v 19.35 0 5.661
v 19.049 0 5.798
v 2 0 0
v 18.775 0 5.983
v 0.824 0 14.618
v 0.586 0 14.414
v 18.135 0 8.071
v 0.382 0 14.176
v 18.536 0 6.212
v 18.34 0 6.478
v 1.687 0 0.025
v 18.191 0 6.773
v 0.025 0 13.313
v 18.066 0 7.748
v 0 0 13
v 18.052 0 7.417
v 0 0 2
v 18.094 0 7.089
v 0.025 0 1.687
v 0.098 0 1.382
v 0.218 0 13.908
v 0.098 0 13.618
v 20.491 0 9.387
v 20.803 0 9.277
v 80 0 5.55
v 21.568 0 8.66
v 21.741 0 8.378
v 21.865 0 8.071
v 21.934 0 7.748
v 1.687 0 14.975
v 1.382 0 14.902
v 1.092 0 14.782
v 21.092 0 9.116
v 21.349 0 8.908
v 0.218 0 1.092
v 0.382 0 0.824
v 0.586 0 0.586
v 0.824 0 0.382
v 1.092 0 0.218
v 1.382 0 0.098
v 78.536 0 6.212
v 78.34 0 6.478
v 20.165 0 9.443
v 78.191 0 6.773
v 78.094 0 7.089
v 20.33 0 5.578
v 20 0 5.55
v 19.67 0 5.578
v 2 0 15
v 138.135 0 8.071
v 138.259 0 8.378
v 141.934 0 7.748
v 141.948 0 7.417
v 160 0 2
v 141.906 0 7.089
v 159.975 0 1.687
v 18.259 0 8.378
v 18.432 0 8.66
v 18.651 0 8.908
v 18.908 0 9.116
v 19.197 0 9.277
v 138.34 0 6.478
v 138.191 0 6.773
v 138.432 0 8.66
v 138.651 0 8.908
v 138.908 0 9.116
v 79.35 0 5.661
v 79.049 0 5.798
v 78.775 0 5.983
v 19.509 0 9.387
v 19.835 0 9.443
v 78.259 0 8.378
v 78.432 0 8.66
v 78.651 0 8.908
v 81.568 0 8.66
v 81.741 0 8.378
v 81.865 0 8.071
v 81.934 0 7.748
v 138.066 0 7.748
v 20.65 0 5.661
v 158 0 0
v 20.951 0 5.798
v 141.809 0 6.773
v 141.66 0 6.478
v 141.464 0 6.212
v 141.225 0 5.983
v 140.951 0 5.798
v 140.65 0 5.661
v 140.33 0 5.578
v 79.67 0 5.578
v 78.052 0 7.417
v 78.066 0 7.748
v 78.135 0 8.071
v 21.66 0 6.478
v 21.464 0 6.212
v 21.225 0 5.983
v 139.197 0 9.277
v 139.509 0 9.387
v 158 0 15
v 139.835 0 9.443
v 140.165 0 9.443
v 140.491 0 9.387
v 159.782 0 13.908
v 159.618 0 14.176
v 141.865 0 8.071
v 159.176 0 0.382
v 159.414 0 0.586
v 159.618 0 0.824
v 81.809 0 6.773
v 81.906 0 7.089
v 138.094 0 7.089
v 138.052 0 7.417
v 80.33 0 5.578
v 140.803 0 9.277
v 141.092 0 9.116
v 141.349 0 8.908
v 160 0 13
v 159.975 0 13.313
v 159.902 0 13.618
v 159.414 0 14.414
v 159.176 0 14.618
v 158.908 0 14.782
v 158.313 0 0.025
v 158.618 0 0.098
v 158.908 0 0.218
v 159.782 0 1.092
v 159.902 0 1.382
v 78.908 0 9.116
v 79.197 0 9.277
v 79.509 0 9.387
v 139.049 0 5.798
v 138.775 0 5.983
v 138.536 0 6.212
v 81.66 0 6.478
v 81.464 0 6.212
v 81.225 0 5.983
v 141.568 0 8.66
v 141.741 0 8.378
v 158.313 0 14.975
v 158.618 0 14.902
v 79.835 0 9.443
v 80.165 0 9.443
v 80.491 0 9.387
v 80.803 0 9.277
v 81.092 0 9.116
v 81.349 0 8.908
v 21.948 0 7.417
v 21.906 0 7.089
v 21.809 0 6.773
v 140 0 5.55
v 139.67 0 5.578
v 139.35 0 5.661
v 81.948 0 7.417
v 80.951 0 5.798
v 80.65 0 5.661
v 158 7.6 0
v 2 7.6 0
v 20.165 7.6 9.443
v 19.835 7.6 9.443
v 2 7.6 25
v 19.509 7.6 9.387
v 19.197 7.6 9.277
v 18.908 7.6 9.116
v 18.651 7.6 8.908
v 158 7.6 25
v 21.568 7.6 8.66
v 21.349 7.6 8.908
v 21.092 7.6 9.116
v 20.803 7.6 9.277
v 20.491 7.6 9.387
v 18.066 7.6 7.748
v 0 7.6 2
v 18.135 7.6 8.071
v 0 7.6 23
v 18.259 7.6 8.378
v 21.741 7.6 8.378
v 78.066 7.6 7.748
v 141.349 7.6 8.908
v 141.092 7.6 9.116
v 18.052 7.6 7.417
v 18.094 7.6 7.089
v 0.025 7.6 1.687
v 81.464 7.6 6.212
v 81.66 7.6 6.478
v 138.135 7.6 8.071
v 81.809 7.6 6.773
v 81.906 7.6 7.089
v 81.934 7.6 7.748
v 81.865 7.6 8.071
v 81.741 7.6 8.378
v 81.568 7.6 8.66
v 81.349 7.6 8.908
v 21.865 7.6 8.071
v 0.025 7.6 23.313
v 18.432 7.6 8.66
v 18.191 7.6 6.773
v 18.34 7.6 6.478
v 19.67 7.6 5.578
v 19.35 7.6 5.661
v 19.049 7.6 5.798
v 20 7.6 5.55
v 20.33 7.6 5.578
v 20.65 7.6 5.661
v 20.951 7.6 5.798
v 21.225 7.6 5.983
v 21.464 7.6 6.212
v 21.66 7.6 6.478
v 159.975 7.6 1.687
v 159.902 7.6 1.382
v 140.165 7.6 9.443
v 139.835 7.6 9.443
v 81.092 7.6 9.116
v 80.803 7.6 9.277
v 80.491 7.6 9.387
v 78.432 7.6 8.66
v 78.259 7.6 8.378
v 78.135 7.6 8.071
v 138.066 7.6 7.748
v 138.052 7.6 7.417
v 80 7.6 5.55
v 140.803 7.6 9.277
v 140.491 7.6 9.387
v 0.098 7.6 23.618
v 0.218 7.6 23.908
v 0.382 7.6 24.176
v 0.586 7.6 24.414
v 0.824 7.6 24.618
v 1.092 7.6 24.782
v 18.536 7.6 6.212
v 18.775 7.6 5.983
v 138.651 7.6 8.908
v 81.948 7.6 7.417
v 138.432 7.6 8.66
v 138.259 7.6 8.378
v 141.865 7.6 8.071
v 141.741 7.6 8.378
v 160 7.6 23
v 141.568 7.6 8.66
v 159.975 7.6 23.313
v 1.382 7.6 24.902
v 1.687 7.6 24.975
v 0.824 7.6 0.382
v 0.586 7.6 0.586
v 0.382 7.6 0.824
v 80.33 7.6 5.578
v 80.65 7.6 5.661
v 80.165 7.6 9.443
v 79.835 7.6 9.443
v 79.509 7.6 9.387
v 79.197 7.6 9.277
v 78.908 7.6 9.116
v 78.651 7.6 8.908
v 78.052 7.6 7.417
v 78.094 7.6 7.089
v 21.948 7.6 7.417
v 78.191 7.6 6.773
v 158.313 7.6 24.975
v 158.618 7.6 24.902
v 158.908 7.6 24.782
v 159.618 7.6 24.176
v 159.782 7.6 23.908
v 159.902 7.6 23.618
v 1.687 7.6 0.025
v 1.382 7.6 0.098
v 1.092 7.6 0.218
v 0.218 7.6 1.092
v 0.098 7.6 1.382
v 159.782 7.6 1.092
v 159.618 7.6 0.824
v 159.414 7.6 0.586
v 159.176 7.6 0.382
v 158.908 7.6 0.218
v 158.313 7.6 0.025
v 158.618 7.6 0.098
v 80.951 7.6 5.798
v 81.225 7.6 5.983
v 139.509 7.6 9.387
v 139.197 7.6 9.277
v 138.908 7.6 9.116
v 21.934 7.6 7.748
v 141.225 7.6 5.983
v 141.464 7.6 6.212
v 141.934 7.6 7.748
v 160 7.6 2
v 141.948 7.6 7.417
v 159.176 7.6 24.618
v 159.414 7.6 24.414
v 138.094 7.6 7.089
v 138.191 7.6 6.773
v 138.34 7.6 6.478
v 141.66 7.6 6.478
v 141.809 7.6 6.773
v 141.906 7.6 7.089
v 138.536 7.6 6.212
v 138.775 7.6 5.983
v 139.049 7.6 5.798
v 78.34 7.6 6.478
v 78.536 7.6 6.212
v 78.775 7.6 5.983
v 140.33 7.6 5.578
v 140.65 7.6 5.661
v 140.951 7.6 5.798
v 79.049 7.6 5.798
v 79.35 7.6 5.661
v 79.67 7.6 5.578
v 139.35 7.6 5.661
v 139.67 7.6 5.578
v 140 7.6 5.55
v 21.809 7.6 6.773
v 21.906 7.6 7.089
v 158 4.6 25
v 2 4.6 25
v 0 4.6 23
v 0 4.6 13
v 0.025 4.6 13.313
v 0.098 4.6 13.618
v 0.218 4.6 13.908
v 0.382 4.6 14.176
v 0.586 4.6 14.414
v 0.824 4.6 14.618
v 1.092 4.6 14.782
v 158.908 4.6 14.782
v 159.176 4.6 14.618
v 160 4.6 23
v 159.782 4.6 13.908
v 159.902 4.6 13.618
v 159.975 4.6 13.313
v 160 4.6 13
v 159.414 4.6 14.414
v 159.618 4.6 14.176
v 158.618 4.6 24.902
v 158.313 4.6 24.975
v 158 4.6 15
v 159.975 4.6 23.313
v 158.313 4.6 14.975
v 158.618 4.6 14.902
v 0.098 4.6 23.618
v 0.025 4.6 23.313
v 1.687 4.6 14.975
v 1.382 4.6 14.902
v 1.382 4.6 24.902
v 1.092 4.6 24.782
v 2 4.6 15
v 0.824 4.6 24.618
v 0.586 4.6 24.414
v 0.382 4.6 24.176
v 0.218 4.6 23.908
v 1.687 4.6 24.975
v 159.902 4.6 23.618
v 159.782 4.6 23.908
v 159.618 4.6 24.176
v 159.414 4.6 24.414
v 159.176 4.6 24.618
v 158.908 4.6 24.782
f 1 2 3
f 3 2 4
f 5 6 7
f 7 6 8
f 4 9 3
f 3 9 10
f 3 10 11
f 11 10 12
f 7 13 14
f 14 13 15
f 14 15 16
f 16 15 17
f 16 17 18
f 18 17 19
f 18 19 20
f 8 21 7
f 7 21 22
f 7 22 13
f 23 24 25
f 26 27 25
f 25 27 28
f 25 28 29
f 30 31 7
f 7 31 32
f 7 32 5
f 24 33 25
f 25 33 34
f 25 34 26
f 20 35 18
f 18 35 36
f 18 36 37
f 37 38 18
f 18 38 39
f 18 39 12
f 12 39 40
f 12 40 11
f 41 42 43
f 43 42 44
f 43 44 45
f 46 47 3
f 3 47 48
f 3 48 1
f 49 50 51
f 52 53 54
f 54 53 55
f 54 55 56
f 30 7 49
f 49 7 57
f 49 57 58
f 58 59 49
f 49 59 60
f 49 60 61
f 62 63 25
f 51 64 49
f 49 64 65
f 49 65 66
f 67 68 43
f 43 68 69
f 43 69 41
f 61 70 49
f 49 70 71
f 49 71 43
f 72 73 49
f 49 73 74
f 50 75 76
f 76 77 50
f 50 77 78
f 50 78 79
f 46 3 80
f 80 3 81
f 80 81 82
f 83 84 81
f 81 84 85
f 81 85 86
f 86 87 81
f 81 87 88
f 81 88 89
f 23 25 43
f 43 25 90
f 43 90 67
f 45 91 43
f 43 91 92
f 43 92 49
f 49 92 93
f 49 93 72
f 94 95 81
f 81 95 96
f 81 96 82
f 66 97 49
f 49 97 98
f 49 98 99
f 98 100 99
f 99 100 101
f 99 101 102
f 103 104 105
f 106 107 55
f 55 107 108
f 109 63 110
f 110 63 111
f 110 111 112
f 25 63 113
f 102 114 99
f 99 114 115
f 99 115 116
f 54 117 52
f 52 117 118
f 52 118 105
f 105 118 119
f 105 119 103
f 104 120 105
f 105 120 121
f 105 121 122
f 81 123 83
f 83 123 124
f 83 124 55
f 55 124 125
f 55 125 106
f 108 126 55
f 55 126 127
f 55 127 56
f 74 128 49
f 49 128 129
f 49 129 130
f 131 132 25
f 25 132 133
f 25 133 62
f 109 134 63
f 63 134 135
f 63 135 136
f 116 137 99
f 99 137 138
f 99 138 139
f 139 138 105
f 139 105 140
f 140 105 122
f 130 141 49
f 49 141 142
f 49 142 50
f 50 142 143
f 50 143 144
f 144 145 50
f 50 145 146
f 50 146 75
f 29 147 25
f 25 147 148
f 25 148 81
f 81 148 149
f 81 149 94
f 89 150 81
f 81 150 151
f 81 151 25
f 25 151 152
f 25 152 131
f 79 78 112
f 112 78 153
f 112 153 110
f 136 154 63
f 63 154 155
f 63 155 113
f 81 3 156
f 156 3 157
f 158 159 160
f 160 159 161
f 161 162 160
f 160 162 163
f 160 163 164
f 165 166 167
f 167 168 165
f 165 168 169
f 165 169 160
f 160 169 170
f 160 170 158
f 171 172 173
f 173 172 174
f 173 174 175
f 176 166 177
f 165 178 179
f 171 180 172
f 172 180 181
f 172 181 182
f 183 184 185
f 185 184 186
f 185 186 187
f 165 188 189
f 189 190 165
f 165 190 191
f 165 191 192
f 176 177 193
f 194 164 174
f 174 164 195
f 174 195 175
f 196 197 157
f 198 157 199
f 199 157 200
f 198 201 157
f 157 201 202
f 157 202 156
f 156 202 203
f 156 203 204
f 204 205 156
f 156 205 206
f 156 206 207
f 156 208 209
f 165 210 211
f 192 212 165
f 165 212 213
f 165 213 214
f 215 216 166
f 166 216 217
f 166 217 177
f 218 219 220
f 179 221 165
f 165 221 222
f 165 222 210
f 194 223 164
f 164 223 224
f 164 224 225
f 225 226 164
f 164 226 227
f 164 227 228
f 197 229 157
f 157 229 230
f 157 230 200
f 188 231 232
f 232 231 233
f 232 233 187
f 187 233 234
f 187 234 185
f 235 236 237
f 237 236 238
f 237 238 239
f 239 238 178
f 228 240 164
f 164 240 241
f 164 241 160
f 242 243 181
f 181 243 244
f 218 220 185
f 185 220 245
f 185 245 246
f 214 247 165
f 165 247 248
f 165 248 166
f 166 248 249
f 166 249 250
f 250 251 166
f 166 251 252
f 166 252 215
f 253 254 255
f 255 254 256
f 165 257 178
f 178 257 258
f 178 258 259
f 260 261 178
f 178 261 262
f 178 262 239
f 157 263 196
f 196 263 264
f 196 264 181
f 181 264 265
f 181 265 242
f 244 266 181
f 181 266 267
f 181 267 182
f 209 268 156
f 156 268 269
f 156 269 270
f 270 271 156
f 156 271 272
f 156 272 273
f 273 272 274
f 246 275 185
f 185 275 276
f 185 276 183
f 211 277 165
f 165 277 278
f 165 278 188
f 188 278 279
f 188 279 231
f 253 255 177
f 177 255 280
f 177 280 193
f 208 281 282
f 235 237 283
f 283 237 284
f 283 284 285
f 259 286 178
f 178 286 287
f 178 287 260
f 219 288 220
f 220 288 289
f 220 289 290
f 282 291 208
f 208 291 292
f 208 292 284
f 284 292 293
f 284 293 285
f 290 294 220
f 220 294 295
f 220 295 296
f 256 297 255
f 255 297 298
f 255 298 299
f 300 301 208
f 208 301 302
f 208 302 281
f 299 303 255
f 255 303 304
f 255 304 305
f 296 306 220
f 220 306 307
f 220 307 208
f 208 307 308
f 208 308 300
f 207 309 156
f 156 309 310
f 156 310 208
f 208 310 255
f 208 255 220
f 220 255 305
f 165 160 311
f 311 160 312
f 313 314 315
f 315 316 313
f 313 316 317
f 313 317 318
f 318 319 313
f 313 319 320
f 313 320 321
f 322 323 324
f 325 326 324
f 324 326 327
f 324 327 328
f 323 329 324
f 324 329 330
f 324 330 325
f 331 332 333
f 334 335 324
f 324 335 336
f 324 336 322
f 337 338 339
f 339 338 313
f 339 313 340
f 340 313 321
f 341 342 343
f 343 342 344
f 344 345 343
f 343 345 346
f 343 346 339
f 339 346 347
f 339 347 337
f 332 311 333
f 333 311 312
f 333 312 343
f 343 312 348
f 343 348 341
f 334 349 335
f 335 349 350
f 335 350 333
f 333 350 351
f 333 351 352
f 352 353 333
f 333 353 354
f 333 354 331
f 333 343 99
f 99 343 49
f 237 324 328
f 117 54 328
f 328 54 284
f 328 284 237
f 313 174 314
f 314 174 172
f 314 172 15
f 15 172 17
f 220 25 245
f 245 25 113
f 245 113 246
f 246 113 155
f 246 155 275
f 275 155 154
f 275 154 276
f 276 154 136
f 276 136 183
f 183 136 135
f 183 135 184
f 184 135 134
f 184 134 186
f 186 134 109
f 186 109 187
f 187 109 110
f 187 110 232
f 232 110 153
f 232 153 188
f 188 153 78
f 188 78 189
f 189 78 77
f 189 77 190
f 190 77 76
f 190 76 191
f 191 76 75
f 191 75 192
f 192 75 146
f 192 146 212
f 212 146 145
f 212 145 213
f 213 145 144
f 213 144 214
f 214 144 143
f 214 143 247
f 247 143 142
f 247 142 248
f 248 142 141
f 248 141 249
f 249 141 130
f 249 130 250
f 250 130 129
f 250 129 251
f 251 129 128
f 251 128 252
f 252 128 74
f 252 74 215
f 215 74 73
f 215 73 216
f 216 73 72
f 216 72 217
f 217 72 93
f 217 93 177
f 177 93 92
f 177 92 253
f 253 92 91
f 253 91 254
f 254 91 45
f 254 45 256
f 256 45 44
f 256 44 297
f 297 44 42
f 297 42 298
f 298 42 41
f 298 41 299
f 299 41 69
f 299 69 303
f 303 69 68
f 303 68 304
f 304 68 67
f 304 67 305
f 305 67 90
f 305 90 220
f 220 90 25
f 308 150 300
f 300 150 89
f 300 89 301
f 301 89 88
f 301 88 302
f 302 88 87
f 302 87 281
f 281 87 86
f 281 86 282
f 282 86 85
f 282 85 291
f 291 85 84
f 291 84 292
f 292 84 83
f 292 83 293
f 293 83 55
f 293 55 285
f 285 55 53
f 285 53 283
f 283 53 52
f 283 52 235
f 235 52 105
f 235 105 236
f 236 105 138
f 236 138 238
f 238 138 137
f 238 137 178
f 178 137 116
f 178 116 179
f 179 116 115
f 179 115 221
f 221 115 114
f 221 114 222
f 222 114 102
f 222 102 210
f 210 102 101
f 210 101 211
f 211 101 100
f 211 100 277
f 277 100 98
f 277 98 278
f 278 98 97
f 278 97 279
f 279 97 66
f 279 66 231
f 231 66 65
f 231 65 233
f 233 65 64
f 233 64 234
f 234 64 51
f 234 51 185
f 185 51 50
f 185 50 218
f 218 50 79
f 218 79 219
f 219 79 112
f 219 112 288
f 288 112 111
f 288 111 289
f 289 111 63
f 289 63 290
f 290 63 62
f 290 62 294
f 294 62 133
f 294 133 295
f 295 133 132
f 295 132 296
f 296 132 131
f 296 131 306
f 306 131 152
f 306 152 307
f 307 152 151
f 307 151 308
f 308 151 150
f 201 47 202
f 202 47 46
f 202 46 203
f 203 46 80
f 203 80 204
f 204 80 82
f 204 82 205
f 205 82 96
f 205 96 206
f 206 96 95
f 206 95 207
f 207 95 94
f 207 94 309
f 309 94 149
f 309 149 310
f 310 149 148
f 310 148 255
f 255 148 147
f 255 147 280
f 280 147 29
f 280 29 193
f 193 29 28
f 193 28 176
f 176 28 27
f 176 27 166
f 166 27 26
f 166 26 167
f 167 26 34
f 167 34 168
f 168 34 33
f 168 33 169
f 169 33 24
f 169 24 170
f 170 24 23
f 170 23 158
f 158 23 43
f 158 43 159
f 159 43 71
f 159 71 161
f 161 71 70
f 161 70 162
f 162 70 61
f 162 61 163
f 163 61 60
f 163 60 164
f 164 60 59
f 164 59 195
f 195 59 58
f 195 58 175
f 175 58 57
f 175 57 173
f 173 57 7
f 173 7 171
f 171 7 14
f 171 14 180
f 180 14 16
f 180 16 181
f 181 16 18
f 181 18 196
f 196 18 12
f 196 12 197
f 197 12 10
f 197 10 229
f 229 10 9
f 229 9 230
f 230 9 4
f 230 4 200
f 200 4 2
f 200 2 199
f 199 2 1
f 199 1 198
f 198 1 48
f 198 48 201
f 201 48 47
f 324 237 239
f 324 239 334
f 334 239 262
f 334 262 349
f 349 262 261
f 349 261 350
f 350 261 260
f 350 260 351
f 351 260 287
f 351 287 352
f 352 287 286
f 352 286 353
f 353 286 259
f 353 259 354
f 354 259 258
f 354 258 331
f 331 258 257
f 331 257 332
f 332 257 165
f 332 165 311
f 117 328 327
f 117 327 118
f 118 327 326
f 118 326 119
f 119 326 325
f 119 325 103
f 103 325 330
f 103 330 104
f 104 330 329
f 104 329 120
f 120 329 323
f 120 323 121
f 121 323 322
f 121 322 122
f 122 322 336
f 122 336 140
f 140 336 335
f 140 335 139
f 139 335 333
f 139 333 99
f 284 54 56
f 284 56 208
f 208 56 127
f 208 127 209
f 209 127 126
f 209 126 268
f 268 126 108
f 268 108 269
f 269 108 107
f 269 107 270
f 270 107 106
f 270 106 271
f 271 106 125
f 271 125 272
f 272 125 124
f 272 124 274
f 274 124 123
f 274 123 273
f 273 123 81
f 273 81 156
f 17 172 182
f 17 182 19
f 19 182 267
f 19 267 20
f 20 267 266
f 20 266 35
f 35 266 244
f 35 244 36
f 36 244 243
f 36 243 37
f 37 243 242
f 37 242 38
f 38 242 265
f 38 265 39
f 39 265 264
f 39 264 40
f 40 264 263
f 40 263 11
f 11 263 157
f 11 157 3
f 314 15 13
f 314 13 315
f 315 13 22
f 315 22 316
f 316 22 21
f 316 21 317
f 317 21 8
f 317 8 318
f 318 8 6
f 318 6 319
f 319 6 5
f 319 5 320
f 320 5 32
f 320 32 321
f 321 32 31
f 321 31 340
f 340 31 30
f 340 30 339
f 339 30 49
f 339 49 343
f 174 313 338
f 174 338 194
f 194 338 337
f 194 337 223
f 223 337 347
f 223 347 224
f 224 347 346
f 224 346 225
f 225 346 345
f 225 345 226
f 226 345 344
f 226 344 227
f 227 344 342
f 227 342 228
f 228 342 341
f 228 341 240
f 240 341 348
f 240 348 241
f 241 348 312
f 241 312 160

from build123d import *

# Parameters (mm, degrees)
EXTRUDE_1_DEPTH     = 160
CUT_EXTRUDE_1_REACH = 164.12
SKETCH_2_R          = 1.95
FILLET_1_R          = 2


with BuildPart() as part:
    # 草图1 → 凸台-拉伸1 (new body)
    with BuildSketch(Plane(origin=(0, 0, 0), x_dir=(0, 0, -1), z_dir=(1, 0, 0))):
        Polygon((0, 0), (0, 7.6), (-25, 7.6), (-25, 4.6), (-15, 4.6), (-15, 0), align=None)
    extrude(amount=EXTRUDE_1_DEPTH)

    # 草图2 → 切除-拉伸1 (cut, up to next)
    with BuildSketch(Plane.XZ, mode=Mode.PRIVATE) as cut_extrude_1_sk1:
        with Locations(Location((20, 7.5, 0), (0, 0, 270))):
            Circle(SKETCH_2_R)
    cut_extrude_1_tool1 = extrude(cut_extrude_1_sk1.sketch, amount=-CUT_EXTRUDE_1_REACH, mode=Mode.PRIVATE) & part.part
    # 草图2 → 切除-拉伸1 (cut, up to next)
    with BuildSketch(Plane.XZ, mode=Mode.PRIVATE) as cut_extrude_1_sk2:
        with Locations(Location((140, 7.5, 0), (0, 0, 270))):
            Circle(SKETCH_2_R)
    cut_extrude_1_tool2 = extrude(cut_extrude_1_sk2.sketch, amount=-CUT_EXTRUDE_1_REACH, mode=Mode.PRIVATE) & part.part
    # 草图2 → 切除-拉伸1 (cut, up to next)
    with BuildSketch(Plane.XZ, mode=Mode.PRIVATE) as cut_extrude_1_sk3:
        with Locations(Location((80, 7.5, 0), (0, 0, 270))):
            Circle(SKETCH_2_R)
    cut_extrude_1_tool3 = extrude(cut_extrude_1_sk3.sketch, amount=-CUT_EXTRUDE_1_REACH, mode=Mode.PRIVATE) & part.part
    add(cut_extrude_1_tool1.solids().sort_by_distance((20, 0, 7.5))[0], mode=Mode.SUBTRACT)
    add(cut_extrude_1_tool2.solids().sort_by_distance((140, 0, 7.5))[0], mode=Mode.SUBTRACT)
    add(cut_extrude_1_tool3.solids().sort_by_distance((80, 0, 7.5))[0], mode=Mode.SUBTRACT)

    # 圆角1
    fillet_1_edges = [part.edges().sort_by_distance(p)[0] for p in [
        (160, 6.1, 25),
        (160, 2.3, 15),
        (0, 2.3, 15),
        (0, 6.1, 25),
        (0, 3.8, 0),
        (160, 3.8, 0),
    ]]
    fillet(fillet_1_edges, radius=FILLET_1_R)


solid = part.part
